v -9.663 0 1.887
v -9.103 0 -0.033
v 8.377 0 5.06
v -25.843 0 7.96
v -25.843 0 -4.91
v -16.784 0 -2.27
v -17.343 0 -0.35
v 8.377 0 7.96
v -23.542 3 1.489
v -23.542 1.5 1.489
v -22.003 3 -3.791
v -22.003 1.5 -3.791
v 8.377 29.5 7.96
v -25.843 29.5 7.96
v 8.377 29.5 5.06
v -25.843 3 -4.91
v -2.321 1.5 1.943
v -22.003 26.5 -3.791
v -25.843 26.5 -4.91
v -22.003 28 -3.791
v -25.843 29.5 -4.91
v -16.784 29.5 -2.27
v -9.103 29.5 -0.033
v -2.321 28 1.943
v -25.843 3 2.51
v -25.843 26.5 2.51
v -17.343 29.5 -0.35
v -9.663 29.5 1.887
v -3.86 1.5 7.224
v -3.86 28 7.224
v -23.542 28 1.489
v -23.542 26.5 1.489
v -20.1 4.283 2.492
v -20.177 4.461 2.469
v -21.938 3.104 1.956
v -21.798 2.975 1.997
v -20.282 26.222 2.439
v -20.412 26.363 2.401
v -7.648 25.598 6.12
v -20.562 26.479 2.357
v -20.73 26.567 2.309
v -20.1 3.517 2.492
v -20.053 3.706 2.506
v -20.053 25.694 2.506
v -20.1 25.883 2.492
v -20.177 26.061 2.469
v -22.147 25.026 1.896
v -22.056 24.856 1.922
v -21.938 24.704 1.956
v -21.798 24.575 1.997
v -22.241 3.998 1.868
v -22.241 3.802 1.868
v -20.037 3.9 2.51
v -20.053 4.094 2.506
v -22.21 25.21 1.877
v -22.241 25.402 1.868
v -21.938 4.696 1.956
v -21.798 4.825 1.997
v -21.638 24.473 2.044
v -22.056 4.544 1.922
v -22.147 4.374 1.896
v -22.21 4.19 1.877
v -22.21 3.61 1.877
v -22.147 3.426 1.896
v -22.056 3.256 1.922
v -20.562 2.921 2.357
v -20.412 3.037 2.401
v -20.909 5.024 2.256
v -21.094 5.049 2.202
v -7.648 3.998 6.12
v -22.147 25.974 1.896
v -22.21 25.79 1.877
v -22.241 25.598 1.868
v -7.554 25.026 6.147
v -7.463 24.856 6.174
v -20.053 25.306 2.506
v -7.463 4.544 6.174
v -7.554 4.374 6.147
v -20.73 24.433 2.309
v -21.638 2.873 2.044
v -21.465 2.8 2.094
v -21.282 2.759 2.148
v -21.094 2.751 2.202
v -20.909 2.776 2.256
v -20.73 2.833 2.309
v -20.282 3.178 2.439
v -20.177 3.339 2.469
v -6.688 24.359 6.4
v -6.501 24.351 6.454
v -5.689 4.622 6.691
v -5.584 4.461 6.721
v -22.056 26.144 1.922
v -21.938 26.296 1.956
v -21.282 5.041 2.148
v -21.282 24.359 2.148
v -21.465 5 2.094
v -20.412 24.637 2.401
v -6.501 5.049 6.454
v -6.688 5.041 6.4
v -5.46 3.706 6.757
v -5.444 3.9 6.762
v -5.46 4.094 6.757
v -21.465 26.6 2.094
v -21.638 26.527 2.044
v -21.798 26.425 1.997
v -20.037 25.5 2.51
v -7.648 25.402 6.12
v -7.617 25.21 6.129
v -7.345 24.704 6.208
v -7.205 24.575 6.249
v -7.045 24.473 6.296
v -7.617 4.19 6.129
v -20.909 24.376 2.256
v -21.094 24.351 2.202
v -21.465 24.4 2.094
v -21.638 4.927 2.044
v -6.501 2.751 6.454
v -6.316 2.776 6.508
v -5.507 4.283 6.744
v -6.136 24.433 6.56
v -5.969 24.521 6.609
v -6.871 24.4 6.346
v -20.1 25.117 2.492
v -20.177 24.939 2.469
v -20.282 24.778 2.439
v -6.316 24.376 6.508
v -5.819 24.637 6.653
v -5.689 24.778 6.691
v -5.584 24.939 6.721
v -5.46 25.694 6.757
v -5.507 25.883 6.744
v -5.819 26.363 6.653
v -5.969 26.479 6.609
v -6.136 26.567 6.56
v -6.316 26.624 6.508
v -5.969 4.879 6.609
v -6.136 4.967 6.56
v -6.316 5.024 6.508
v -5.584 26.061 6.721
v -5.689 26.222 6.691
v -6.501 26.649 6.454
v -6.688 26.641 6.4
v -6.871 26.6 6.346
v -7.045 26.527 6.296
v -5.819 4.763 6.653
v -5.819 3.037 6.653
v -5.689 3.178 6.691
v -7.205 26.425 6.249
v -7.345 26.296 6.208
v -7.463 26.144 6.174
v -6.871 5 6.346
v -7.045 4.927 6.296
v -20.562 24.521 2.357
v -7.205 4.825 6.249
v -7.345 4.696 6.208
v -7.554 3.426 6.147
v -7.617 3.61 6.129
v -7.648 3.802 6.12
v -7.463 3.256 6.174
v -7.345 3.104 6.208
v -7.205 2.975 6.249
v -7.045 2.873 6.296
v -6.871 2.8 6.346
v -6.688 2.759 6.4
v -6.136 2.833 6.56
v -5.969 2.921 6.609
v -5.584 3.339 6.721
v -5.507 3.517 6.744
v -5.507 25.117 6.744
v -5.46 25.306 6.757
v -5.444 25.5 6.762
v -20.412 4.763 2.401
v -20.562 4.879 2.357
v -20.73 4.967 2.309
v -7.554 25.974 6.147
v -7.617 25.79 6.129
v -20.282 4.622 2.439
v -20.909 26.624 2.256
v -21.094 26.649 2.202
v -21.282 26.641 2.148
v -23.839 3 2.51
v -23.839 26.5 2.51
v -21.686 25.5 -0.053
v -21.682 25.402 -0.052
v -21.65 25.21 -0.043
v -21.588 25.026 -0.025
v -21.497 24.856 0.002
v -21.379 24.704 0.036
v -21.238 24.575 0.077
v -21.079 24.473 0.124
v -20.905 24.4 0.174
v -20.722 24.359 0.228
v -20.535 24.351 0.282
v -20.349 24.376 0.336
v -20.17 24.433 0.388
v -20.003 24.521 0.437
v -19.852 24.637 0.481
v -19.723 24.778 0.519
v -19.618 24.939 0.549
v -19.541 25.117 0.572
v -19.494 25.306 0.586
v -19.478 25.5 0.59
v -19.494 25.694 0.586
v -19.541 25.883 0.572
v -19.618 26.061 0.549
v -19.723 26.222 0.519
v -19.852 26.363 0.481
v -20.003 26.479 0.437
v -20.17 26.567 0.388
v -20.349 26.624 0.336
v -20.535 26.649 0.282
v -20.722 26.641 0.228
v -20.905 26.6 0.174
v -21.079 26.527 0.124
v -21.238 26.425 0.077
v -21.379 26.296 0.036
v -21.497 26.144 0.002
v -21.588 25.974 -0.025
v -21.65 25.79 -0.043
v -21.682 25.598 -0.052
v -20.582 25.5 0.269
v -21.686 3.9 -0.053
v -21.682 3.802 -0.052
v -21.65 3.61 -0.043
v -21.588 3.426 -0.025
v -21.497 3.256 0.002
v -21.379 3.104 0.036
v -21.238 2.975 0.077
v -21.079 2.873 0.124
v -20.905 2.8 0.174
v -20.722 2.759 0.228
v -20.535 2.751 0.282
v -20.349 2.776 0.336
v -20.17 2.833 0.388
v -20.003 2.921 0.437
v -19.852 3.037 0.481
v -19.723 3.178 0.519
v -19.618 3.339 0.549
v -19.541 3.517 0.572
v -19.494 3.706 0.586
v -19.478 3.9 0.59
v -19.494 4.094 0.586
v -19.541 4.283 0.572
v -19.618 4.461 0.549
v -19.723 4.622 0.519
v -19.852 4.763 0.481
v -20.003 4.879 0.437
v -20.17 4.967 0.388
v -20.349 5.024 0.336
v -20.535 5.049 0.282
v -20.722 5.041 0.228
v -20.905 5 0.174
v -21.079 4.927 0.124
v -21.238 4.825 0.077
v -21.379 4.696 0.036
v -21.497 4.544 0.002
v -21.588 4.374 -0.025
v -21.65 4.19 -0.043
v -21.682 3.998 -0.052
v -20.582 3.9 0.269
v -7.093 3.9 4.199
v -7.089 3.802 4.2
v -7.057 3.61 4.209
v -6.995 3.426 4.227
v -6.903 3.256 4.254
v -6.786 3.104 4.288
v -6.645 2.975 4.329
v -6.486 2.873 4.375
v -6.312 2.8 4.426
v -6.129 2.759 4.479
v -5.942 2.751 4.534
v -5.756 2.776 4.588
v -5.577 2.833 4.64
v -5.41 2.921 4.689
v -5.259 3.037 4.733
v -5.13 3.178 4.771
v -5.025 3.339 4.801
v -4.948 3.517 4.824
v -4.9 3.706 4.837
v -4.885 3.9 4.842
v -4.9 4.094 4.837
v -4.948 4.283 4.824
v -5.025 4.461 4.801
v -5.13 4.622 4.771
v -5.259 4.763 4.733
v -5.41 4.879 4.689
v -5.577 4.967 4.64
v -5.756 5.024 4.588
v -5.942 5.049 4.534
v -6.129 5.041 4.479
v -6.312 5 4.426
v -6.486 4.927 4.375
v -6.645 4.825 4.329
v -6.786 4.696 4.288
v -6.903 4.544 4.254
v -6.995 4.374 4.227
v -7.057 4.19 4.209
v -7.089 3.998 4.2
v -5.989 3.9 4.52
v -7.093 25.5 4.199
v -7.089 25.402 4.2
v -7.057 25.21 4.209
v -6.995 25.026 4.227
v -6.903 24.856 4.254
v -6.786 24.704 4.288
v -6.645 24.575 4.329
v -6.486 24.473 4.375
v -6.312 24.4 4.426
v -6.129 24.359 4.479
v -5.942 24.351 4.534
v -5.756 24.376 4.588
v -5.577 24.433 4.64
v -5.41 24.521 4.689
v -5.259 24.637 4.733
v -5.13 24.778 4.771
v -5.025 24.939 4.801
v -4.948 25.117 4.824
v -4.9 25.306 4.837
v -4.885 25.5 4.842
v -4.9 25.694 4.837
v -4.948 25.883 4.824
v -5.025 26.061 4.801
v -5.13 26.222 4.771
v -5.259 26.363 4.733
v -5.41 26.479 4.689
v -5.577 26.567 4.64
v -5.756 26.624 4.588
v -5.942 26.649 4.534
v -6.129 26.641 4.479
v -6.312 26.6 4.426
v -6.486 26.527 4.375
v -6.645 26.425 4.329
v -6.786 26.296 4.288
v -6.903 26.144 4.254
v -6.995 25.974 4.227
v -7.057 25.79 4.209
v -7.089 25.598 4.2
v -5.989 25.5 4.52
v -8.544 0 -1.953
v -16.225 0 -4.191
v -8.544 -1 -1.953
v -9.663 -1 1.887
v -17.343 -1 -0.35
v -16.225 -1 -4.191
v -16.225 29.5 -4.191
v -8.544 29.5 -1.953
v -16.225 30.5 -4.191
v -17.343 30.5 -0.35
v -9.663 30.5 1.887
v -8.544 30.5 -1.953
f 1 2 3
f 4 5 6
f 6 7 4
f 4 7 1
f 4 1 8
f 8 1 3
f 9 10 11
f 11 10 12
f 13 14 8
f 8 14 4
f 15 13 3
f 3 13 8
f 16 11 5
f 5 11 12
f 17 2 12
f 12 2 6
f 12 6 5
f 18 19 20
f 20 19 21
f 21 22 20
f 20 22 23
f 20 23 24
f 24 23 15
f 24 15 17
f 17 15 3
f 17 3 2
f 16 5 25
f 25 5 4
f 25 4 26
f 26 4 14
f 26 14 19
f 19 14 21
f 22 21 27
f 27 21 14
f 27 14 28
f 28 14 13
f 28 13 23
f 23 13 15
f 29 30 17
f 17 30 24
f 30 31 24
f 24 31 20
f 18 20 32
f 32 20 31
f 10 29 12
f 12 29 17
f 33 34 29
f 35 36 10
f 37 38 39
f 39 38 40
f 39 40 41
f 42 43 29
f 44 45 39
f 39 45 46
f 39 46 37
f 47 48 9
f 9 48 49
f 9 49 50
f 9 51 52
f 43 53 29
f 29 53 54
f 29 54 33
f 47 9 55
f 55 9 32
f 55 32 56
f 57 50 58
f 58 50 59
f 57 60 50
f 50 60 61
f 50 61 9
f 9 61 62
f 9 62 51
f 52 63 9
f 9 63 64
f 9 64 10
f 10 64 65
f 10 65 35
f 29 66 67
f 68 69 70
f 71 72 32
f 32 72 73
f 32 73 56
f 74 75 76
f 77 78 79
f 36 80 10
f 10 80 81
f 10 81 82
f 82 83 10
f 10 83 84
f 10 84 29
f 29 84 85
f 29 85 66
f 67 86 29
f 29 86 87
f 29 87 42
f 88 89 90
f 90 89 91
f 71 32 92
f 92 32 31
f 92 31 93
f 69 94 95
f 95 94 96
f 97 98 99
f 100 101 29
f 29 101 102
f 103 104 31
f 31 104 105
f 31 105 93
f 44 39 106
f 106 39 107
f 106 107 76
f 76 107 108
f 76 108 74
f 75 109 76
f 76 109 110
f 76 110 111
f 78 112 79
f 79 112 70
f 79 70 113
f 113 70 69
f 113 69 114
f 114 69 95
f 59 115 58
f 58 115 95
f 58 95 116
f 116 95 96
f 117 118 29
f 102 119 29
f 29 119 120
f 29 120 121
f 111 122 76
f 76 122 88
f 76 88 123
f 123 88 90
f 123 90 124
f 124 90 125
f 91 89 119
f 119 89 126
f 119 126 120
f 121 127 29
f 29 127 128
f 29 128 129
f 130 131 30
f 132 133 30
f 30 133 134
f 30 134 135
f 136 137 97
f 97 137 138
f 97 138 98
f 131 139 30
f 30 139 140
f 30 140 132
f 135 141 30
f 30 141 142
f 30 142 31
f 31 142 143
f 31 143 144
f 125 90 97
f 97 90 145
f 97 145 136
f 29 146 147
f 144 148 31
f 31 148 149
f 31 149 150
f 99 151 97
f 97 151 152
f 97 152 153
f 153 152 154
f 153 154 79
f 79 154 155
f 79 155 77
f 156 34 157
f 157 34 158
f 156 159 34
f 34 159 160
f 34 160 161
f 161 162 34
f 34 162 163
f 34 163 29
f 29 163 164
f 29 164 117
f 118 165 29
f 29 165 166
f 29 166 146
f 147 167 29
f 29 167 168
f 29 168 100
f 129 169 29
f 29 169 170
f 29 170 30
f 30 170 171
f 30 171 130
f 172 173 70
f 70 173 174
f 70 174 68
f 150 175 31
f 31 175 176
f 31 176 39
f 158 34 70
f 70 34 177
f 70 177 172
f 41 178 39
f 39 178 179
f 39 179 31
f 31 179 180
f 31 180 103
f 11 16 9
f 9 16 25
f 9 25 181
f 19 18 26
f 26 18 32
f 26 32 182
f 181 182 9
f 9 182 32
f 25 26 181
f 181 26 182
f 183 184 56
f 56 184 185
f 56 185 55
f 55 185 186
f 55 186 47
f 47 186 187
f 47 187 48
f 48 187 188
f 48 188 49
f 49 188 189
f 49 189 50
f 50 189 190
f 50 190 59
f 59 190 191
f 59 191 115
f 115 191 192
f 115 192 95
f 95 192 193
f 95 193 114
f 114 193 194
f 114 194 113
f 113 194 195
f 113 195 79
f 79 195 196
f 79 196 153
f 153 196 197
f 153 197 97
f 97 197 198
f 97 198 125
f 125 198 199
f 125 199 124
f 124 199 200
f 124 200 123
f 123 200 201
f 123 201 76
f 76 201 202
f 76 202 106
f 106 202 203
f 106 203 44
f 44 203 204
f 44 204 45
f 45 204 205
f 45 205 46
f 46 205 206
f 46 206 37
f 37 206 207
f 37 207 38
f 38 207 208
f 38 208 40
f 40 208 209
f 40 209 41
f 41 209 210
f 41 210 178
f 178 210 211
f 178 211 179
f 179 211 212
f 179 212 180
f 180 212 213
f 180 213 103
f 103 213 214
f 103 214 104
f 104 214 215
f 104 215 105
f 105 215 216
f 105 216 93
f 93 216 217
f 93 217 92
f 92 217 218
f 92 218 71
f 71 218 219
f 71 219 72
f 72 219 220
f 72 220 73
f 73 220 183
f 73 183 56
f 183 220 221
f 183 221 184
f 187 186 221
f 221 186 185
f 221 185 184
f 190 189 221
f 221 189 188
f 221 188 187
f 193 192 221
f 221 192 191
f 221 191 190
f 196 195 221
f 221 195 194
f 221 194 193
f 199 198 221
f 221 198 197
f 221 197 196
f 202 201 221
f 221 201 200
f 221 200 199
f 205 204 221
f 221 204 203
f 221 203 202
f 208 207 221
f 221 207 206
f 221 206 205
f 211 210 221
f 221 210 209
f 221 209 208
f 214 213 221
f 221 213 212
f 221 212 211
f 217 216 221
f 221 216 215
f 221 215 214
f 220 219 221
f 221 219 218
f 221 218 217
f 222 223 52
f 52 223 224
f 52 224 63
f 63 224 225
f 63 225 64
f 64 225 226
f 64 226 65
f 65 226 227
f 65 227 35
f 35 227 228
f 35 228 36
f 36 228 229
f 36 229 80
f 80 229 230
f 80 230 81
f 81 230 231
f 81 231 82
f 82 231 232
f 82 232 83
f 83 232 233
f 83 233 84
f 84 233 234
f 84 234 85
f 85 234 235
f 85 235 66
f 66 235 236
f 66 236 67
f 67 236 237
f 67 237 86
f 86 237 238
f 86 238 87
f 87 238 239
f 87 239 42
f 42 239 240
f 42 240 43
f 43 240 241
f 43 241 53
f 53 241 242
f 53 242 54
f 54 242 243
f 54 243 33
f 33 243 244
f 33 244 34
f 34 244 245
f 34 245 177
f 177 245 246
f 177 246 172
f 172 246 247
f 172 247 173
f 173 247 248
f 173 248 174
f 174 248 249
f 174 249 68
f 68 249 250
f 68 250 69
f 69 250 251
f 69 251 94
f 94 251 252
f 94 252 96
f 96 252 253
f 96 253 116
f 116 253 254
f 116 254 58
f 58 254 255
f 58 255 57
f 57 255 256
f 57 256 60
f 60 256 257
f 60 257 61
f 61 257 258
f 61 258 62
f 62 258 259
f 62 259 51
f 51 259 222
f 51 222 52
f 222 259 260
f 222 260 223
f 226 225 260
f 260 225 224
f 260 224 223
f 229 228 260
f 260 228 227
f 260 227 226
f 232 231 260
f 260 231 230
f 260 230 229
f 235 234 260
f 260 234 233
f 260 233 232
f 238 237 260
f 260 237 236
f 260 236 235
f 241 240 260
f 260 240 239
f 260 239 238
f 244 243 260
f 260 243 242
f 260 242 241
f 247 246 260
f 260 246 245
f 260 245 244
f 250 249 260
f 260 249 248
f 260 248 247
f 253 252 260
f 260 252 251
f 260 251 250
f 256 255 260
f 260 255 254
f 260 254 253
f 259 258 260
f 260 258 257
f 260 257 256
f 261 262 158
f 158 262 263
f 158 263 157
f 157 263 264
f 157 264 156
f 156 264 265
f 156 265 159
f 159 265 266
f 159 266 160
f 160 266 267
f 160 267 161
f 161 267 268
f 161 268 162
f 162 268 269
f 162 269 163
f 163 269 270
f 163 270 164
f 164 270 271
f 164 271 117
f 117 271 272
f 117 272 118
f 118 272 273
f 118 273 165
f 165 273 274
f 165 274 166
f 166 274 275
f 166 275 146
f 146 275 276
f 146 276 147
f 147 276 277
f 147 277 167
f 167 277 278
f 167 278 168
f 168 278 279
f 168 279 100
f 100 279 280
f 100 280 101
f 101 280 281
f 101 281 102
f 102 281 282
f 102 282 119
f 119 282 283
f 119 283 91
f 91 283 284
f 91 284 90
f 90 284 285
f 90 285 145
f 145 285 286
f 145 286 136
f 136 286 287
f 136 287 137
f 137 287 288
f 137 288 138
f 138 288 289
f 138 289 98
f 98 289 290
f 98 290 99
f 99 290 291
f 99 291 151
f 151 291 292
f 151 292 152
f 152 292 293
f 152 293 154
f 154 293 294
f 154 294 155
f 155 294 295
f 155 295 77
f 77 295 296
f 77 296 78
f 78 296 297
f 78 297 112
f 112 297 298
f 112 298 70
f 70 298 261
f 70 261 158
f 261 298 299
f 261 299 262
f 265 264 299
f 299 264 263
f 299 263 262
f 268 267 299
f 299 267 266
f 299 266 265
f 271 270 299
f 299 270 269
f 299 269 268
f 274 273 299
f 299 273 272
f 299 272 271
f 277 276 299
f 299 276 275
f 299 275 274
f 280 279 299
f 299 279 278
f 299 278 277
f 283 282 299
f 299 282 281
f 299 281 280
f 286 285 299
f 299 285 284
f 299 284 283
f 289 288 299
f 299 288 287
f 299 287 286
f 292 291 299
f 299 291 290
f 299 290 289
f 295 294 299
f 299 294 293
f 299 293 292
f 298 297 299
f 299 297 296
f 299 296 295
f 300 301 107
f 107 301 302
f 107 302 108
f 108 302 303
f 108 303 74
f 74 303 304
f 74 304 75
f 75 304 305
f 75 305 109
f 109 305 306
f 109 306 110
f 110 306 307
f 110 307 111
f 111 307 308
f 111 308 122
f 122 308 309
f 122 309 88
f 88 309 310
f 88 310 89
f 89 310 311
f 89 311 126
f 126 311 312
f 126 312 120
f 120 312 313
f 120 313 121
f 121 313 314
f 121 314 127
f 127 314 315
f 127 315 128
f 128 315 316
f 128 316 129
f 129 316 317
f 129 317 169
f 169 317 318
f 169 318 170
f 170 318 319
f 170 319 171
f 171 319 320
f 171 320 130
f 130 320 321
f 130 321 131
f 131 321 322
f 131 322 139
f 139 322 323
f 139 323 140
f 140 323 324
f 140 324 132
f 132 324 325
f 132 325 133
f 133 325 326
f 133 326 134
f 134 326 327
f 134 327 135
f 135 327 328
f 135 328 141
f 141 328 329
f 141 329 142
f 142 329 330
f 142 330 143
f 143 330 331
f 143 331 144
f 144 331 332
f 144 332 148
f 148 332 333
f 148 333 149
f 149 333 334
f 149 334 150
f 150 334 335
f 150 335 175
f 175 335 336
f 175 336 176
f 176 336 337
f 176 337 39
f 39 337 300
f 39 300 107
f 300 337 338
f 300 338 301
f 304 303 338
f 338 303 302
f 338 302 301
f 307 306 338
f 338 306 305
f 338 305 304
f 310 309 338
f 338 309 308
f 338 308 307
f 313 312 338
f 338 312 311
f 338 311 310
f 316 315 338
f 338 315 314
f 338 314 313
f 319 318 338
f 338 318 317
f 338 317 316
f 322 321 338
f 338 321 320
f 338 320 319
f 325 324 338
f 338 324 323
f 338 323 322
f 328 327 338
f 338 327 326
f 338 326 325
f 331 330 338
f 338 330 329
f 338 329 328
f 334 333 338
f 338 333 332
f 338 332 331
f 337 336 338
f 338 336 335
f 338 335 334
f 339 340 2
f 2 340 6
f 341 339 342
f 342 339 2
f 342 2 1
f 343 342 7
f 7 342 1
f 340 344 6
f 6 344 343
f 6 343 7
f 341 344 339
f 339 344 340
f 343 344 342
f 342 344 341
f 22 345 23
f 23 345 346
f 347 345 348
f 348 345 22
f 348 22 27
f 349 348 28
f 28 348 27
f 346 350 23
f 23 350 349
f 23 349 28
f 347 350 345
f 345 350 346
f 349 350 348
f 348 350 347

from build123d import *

# Parameters (mm, degrees)
BOSS_EXTRUDE1_DEPTH = 29.5
SKETCH2_W           = 20.5
SKETCH2_H           = 26.5
CUT_EXTRUDE1_DEPTH  = 5.5
CUT_EXTRUDE2_REACH  = 36.22
SKETCH3_W           = 7.420012267
SKETCH3_H           = 23.5
SKETCH4_R           = 1.15
BOSS_EXTRUDE2_DEPTH = 2
BOSS_EXTRUDE3_DEPTH = 1
BOSS_EXTRUDE4_DEPTH = 1


with BuildPart() as part:
    # Sketch1 → Boss-Extrude1 (new body)
    with BuildSketch(Plane(origin=(0, 0, 0), x_dir=(1, 0, 0), z_dir=(0, 1, 0))):
        Polygon((-25.843422974, -5.060047824), (-25.843422974, 4.909964443), (8.376577026, -5.060047824), (8.376577026, -7.960047824), (-25.843422974, -7.960047824), align=None)
    extrude(amount=BOSS_EXTRUDE1_DEPTH)

    # Sketch2 → Cut-Extrude1 (cut)
    with BuildSketch(Plane(origin=(-0.703485348, 0, 2.414567601), x_dir=(-0.960081566, 0, -0.279720193), z_dir=(0.279720193, 0, -0.960081566))):
        with Locations((11.935210206, 14.75)):
            Rectangle(SKETCH2_W, SKETCH2_H)
    extrude(amount=-CUT_EXTRUDE1_DEPTH, mode=Mode.SUBTRACT)

    # Cut-Extrude2: up to this face of the body (flat: up to its plane)
    cut_extrude2_end = Plane(part.part.faces().sort_by_distance((-22.772327239, 14.75, -1.150859365))[0])
    # Sketch3 → Cut-Extrude2 (cut, up to the picked face)
    with BuildSketch(Plane.ZY.offset(25.843422974), mode=Mode.PRIVATE) as cut_extrude2_sk1:
        with Locations((-1.19995831, 14.75)):
            Rectangle(SKETCH3_W, SKETCH3_H)
    cut_extrude2_tool1 = split(extrude(cut_extrude2_sk1.sketch, amount=-CUT_EXTRUDE2_REACH, mode=Mode.PRIVATE), bisect_by=cut_extrude2_end, keep=Keep.BOTH, mode=Mode.PRIVATE)
    add(cut_extrude2_tool1.solids().sort_by_distance((-25.843423, 14.75, -1.199958))[0], mode=Mode.SUBTRACT)

    # Sketch4 → Boss-Extrude2 (add)
    with BuildSketch(Plane(origin=(-2.241946407, 0, 7.695016215), x_dir=(-0.960081566, 0, -0.279720193), z_dir=(0.279720193, 0, -0.960081566))):
        with Locations((19.685210206, 25.5)):
            Circle(SKETCH4_R)
        with Locations((19.685210206, 3.9)):
            Circle(SKETCH4_R)
        with Locations((4.485210206, 3.9)):
            Circle(SKETCH4_R)
        with Locations((4.485210206, 25.5)):
            Circle(SKETCH4_R)
    extrude(amount=BOSS_EXTRUDE2_DEPTH)

    # Sketch5 → Boss-Extrude3 (add)
    with BuildSketch(Plane(origin=(0, 0, 0), x_dir=(-1, 0, 0), z_dir=(0, -1, 0))):
        Polygon((9.662770444, -1.887432229), (17.343422974, 0.350329313), (16.224542204, 4.190655577), (8.543889674, 1.952894036), align=None)
    extrude(amount=BOSS_EXTRUDE3_DEPTH)

    # Sketch6 → Boss-Extrude4 (add)
    with BuildSketch(Plane(origin=(0, 29.5, 0), x_dir=(1, 0, 0), z_dir=(0, 1, 0))):
        Polygon((-16.224542204, 4.190655577), (-8.543889674, 1.952894036), (-9.662770444, -1.887432229), (-17.343422974, 0.350329313), align=None)
    extrude(amount=BOSS_EXTRUDE4_DEPTH)


solid = part.part
